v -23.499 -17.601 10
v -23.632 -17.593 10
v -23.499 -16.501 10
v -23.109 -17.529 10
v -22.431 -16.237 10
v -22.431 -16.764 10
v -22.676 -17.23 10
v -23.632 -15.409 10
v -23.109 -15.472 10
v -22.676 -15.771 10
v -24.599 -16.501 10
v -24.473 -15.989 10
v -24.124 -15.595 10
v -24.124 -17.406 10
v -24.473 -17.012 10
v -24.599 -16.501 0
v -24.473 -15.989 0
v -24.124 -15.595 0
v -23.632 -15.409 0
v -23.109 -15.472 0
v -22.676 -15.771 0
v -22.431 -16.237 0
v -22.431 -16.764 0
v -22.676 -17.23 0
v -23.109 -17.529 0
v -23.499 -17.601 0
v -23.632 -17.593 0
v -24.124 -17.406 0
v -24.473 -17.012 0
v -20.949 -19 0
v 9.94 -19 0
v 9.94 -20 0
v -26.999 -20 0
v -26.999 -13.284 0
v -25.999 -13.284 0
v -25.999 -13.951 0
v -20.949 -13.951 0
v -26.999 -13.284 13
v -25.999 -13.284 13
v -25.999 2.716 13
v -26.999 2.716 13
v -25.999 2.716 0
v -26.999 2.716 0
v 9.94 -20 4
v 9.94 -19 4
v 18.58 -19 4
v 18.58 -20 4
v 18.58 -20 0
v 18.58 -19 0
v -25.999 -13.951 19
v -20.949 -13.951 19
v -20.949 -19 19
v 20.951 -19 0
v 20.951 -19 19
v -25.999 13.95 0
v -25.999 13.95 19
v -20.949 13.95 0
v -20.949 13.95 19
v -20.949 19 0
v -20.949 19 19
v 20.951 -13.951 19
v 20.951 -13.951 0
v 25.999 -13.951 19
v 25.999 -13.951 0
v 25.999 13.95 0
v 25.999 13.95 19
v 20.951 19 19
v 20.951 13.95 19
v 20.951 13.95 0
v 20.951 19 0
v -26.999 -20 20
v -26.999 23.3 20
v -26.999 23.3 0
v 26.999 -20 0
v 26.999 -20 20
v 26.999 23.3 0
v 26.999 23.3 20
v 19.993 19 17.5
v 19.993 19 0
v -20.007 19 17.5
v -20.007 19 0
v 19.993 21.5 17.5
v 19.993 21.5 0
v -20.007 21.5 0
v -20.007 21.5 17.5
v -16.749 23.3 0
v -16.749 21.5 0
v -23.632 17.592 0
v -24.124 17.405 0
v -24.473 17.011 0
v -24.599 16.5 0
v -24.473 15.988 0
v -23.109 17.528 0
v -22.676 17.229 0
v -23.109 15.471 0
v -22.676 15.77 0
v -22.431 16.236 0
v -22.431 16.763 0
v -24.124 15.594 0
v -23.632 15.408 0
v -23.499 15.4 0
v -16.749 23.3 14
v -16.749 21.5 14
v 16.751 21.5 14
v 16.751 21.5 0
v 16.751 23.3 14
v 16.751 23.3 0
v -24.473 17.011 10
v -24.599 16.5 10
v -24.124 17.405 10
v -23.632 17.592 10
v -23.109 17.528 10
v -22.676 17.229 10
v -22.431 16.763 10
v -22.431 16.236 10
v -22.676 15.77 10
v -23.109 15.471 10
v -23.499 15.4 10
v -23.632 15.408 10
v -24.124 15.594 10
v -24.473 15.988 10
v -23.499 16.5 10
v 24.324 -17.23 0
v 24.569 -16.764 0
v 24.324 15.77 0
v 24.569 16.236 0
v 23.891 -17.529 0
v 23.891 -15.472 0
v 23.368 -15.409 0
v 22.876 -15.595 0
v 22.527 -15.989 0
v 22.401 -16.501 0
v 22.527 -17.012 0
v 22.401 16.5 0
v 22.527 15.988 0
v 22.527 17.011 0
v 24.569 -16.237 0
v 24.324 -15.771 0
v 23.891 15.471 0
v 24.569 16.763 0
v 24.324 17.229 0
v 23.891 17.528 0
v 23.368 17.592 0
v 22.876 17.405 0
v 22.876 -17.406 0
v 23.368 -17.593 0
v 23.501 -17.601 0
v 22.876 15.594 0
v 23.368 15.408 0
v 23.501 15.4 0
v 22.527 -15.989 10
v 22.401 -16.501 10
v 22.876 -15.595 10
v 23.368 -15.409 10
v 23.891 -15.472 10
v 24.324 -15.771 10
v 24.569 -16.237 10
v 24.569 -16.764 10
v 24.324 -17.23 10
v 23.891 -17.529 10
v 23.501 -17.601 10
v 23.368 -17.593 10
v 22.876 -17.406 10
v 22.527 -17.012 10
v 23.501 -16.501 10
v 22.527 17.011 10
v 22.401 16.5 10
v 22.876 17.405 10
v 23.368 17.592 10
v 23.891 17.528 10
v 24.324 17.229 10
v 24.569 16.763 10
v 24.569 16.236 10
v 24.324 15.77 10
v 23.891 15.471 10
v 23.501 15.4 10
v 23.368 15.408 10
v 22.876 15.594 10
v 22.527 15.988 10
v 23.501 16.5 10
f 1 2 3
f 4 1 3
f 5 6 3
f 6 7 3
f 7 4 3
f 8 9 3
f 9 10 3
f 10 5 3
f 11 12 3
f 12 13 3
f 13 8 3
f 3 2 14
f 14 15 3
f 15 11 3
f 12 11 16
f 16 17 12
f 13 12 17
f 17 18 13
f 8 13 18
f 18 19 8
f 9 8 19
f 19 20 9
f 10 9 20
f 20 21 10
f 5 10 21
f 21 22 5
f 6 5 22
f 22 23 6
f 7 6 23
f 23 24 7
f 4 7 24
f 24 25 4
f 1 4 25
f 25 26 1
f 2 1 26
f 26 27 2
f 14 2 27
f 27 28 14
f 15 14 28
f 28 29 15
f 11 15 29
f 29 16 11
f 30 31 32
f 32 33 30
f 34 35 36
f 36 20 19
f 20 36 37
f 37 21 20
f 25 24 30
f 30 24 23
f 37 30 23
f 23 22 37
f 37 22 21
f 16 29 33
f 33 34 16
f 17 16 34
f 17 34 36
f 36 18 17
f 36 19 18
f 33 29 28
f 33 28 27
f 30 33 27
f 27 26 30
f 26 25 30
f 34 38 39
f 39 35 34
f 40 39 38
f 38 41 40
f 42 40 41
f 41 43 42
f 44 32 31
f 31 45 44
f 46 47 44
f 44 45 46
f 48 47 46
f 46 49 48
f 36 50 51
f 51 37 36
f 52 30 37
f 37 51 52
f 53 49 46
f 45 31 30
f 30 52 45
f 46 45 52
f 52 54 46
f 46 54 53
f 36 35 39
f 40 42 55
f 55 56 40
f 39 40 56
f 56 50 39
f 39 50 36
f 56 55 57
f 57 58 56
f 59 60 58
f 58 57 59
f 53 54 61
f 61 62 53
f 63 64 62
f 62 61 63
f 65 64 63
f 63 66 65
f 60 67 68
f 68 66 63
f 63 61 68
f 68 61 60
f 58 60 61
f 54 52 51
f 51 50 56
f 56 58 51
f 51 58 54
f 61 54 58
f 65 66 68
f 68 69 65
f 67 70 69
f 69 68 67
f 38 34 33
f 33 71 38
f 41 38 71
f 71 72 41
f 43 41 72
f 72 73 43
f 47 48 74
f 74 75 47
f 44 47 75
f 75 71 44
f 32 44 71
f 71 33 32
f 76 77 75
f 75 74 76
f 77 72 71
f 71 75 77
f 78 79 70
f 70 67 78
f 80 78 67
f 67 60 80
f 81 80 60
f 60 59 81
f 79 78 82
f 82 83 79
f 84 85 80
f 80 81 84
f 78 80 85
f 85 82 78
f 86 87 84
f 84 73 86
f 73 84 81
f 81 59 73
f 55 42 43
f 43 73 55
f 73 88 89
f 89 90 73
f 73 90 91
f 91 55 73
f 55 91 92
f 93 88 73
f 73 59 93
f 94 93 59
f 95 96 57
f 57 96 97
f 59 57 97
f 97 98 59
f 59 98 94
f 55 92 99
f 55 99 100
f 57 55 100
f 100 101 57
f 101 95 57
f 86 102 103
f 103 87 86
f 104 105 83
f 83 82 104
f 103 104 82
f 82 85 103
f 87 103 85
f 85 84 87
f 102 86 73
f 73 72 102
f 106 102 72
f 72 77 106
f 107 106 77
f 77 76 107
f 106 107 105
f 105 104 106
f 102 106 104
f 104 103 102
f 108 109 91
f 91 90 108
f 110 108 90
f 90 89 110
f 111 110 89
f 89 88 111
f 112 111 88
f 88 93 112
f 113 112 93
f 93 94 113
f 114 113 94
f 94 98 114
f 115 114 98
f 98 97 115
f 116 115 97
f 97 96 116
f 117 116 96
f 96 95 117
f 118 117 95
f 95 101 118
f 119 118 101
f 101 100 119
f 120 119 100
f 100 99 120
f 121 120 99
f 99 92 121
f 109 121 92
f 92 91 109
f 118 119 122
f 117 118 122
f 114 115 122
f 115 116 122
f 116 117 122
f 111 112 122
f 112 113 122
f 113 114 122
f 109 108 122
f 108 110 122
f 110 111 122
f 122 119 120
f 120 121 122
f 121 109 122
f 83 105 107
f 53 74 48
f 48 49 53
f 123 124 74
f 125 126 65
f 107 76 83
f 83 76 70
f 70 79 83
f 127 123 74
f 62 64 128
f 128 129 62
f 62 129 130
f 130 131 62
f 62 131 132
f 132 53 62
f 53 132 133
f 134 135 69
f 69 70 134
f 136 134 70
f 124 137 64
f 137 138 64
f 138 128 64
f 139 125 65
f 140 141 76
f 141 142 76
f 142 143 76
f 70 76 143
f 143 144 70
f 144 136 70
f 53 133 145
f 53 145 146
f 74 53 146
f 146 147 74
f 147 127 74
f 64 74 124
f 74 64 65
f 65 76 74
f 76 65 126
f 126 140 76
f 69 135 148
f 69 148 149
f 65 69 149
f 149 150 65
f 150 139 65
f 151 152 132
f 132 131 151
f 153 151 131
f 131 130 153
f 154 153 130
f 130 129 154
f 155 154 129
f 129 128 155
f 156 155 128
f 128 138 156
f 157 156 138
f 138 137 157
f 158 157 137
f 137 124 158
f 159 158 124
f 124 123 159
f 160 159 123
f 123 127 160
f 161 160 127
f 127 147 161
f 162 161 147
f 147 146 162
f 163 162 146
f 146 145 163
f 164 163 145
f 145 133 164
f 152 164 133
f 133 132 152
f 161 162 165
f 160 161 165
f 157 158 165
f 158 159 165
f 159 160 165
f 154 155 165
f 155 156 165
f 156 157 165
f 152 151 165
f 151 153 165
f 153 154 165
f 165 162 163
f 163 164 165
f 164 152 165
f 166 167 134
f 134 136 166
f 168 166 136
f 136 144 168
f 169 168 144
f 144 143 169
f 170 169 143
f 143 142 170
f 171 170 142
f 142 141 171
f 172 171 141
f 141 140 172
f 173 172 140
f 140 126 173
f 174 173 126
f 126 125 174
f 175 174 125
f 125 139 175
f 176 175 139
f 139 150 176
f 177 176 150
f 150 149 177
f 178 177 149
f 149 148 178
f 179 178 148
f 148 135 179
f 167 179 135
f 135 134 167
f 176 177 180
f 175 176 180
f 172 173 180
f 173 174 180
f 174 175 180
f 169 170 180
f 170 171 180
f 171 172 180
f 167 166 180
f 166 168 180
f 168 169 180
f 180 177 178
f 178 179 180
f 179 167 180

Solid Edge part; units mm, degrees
extrude "Protrusion1" [suppressed]
extrude "Extrusionsausschnitt_1" [suppressed]
extrude "Extrusionsausprägung_2" [suppressed]
extrude "Protrusion2" [suppressed]
extrude "Extrusionsausprägung_4" [suppressed]
extrude "Extrusionsausschnitt_2" [suppressed]
extrude "Extrusionsausschnitt_3" [suppressed]
extrude "Extrusionsausschnitt_4" [suppressed]
sketch "Sketch1" plane through (0, 1.5, 0) normal (0, 0, 1) x (0, 1, 0)
  line L0 (-21.5005, 26.9994) -> (-21.5005, -26.9994)
  line L1 (-21.5005, -26.9994) -> (21.5005, -26.9994)
  line L2 (21.5005, -26.9994) -> (21.5005, 26.9994)
  line L3 (21.5005, 26.9994) -> (-21.5005, 26.9994)
extrude "Protrusion3" add sketch "Sketch1" along normal blind 20
sketch "Sketch2" plane through (0, 1.5, 0) normal (0, 0, -1) x (0, 1, 0)
  line L0 (-20.5005, -25.9994) -> (17.5005, -25.9994)
  line L1 (17.5005, -25.9994) -> (17.5005, 25.9994)
  line L2 (17.5005, 25.9994) -> (-20.5005, 25.9994)
  line L3 (-20.5005, 25.9994) -> (-20.5005, -25.9994)
extrude "Extrusionsausschnitt_5" cut sketch "Sketch2" against normal blind 19
sketch "Sketch3" plane through (0, 1.5, 0) normal (0, 0, -1) x (-1, 0, 0)
  line L0 (-19.993, 17.5005) -> (20.007, 17.5005)
  line L1 (20.007, 17.5005) -> (20.007, 20.0005)
  line L2 (20.007, 20.0005) -> (-19.993, 20.0005)
  line L3 (-19.993, 20.0005) -> (-19.993, 17.5005)
  dimension "D1" = 20.007
  dimension "D2" = 20.007
extrude "Extrusionsausschnitt_6" cut sketch "Sketch3" against normal blind 17.5
sketch "Sketch4" plane through (0, 1.5, 0) normal (0, 0, -1) x (-1, 0, 0)
  line L0 (-16.7505, 20.0005) -> (16.7495, 20.0005)
  line L1 (16.7495, 20.0005) -> (16.7495, 21.5005)
  line L2 (16.7495, 21.5005) -> (-16.7505, 21.5005)
  line L3 (-16.7505, 21.5005) -> (-16.7505, 20.0005)
  dimension "D1" = 16.7495
extrude "Extrusionsausschnitt_7" cut sketch "Sketch4" against normal blind 14
sketch "Sketch5" plane through (0, 1.5, 0) normal (0, 0, -1) x (0, -1, 0)
  line L0 (-1.2155, 26.9994) -> (14.7845, 26.9994)
  line L1 (14.7845, 26.9994) -> (14.7845, 25.9994)
  line L2 (14.7845, 25.9994) -> (-1.2155, 25.9994)
  line L3 (-1.2155, 25.9994) -> (-1.2155, 26.9994)
  dimension "D1" = 1.65
  dimension "D2" = 1.65
extrude "Extrusionsausschnitt_8" cut sketch "Sketch5" against normal blind 13
sketch "Sketch6" plane through (0, 1.5, 0) normal (0, 0, -1) x (0, -1, 0)
  line L0 (18.7753, -18.5802) -> (21.5005, -18.5802)
  line L1 (21.5005, -18.5802) -> (21.5005, -9.9402)
  line L2 (21.5005, -9.9402) -> (18.7753, -9.9402)
  line L3 (18.7753, -9.9402) -> (18.7753, -18.5802)
extrude "Extrusionsausschnitt_9" cut sketch "Sketch6" against normal blind 4
sketch "Sketch7" plane through (0, 0, 19) normal (0, 0, -1) x (0, -1, 0)
  line L0 (-19.0496, 20.9493) -> (-13.9496, 20.9493)
  line L1 (-13.9496, 20.9493) -> (-13.9496, 26.0493)
  line L2 (-13.9496, 26.0493) -> (-19.0496, 26.0493)
  line L3 (-19.0496, 26.0493) -> (-19.0496, 20.9493)
  line L4 (13.9506, 20.9493) -> (19.0506, 20.9493)
  line L5 (19.0506, 20.9493) -> (19.0506, 26.0493)
  line L6 (19.0506, 26.0493) -> (13.9506, 26.0493)
  line L7 (13.9506, 26.0493) -> (13.9506, 20.9493)
  line L8 (13.9506, -26.0506) -> (19.0506, -26.0506)
  line L9 (19.0506, -26.0506) -> (19.0506, -20.9506)
  line L10 (19.0506, -20.9506) -> (13.9506, -20.9506)
  line L11 (13.9506, -20.9506) -> (13.9506, -26.0506)
  line L12 (-19.0496, -26.0506) -> (-13.9496, -26.0506)
  line L13 (-13.9496, -26.0506) -> (-13.9496, -20.9506)
  line L14 (-13.9496, -20.9506) -> (-19.0496, -20.9506)
  line L15 (-19.0496, -20.9506) -> (-19.0496, -26.0506)
extrude "Extrusionsausprägung_6" add sketch "Sketch7" along normal blind 19
sketch "Sketch8" plane through (-23.4744, -16.4755, 0) normal (0, 0, -1) x (0, -1, 0)
  circle A0 centre (0.0251, 0.0249) radius 1.1
  circle A1 centre (0.0251, -46.975) radius 1.1
  circle A2 centre (-32.9751, -46.975) radius 1.1
  circle A3 centre (-32.9751, 0.0249) radius 1.1
  dimension "D1" = 2.2
  dimension "D2" = 2.2
  dimension "D3" = 2.2
extrude "Cutout1" cut sketch "Sketch8" against normal blind 10
sketch "Sketch9" plane through (-21.9995, 12.858, 0) normal (0, 0, -1) x (0, -1, 0)
  line L0 (-9.9425, 10.0509) -> (-9.9425, -54.0498)
  dimension "D1" = 0.2
extrude "Extrusionsausschnitt_11" cut sketch "Sketch9" along normal mid plane 152.9747 material side at (-0.0001, 22.8505, 0)
sketch "Sketch10" plane through (0, 22.8005, 10) normal (0, 1, 0) x (-1, 0, 0)
  line L0 (-26.9994, 10) -> (-26.9994, -10)
  line L1 (-26.9994, -10) -> (-16.7505, -10)
  line L2 (-16.7505, -10) -> (-16.7505, 4)
  line L3 (-16.7505, 4) -> (16.7495, 4)
  line L4 (16.7495, 4) -> (16.7495, -10)
  line L5 (16.7495, -10) -> (26.9994, -10)
  line L6 (26.9994, -10) -> (26.9994, 10)
  line L7 (26.9994, 10) -> (-26.9994, 10)
extrude "Protrusion4" add sketch "Sketch10" along normal blind 0.5
